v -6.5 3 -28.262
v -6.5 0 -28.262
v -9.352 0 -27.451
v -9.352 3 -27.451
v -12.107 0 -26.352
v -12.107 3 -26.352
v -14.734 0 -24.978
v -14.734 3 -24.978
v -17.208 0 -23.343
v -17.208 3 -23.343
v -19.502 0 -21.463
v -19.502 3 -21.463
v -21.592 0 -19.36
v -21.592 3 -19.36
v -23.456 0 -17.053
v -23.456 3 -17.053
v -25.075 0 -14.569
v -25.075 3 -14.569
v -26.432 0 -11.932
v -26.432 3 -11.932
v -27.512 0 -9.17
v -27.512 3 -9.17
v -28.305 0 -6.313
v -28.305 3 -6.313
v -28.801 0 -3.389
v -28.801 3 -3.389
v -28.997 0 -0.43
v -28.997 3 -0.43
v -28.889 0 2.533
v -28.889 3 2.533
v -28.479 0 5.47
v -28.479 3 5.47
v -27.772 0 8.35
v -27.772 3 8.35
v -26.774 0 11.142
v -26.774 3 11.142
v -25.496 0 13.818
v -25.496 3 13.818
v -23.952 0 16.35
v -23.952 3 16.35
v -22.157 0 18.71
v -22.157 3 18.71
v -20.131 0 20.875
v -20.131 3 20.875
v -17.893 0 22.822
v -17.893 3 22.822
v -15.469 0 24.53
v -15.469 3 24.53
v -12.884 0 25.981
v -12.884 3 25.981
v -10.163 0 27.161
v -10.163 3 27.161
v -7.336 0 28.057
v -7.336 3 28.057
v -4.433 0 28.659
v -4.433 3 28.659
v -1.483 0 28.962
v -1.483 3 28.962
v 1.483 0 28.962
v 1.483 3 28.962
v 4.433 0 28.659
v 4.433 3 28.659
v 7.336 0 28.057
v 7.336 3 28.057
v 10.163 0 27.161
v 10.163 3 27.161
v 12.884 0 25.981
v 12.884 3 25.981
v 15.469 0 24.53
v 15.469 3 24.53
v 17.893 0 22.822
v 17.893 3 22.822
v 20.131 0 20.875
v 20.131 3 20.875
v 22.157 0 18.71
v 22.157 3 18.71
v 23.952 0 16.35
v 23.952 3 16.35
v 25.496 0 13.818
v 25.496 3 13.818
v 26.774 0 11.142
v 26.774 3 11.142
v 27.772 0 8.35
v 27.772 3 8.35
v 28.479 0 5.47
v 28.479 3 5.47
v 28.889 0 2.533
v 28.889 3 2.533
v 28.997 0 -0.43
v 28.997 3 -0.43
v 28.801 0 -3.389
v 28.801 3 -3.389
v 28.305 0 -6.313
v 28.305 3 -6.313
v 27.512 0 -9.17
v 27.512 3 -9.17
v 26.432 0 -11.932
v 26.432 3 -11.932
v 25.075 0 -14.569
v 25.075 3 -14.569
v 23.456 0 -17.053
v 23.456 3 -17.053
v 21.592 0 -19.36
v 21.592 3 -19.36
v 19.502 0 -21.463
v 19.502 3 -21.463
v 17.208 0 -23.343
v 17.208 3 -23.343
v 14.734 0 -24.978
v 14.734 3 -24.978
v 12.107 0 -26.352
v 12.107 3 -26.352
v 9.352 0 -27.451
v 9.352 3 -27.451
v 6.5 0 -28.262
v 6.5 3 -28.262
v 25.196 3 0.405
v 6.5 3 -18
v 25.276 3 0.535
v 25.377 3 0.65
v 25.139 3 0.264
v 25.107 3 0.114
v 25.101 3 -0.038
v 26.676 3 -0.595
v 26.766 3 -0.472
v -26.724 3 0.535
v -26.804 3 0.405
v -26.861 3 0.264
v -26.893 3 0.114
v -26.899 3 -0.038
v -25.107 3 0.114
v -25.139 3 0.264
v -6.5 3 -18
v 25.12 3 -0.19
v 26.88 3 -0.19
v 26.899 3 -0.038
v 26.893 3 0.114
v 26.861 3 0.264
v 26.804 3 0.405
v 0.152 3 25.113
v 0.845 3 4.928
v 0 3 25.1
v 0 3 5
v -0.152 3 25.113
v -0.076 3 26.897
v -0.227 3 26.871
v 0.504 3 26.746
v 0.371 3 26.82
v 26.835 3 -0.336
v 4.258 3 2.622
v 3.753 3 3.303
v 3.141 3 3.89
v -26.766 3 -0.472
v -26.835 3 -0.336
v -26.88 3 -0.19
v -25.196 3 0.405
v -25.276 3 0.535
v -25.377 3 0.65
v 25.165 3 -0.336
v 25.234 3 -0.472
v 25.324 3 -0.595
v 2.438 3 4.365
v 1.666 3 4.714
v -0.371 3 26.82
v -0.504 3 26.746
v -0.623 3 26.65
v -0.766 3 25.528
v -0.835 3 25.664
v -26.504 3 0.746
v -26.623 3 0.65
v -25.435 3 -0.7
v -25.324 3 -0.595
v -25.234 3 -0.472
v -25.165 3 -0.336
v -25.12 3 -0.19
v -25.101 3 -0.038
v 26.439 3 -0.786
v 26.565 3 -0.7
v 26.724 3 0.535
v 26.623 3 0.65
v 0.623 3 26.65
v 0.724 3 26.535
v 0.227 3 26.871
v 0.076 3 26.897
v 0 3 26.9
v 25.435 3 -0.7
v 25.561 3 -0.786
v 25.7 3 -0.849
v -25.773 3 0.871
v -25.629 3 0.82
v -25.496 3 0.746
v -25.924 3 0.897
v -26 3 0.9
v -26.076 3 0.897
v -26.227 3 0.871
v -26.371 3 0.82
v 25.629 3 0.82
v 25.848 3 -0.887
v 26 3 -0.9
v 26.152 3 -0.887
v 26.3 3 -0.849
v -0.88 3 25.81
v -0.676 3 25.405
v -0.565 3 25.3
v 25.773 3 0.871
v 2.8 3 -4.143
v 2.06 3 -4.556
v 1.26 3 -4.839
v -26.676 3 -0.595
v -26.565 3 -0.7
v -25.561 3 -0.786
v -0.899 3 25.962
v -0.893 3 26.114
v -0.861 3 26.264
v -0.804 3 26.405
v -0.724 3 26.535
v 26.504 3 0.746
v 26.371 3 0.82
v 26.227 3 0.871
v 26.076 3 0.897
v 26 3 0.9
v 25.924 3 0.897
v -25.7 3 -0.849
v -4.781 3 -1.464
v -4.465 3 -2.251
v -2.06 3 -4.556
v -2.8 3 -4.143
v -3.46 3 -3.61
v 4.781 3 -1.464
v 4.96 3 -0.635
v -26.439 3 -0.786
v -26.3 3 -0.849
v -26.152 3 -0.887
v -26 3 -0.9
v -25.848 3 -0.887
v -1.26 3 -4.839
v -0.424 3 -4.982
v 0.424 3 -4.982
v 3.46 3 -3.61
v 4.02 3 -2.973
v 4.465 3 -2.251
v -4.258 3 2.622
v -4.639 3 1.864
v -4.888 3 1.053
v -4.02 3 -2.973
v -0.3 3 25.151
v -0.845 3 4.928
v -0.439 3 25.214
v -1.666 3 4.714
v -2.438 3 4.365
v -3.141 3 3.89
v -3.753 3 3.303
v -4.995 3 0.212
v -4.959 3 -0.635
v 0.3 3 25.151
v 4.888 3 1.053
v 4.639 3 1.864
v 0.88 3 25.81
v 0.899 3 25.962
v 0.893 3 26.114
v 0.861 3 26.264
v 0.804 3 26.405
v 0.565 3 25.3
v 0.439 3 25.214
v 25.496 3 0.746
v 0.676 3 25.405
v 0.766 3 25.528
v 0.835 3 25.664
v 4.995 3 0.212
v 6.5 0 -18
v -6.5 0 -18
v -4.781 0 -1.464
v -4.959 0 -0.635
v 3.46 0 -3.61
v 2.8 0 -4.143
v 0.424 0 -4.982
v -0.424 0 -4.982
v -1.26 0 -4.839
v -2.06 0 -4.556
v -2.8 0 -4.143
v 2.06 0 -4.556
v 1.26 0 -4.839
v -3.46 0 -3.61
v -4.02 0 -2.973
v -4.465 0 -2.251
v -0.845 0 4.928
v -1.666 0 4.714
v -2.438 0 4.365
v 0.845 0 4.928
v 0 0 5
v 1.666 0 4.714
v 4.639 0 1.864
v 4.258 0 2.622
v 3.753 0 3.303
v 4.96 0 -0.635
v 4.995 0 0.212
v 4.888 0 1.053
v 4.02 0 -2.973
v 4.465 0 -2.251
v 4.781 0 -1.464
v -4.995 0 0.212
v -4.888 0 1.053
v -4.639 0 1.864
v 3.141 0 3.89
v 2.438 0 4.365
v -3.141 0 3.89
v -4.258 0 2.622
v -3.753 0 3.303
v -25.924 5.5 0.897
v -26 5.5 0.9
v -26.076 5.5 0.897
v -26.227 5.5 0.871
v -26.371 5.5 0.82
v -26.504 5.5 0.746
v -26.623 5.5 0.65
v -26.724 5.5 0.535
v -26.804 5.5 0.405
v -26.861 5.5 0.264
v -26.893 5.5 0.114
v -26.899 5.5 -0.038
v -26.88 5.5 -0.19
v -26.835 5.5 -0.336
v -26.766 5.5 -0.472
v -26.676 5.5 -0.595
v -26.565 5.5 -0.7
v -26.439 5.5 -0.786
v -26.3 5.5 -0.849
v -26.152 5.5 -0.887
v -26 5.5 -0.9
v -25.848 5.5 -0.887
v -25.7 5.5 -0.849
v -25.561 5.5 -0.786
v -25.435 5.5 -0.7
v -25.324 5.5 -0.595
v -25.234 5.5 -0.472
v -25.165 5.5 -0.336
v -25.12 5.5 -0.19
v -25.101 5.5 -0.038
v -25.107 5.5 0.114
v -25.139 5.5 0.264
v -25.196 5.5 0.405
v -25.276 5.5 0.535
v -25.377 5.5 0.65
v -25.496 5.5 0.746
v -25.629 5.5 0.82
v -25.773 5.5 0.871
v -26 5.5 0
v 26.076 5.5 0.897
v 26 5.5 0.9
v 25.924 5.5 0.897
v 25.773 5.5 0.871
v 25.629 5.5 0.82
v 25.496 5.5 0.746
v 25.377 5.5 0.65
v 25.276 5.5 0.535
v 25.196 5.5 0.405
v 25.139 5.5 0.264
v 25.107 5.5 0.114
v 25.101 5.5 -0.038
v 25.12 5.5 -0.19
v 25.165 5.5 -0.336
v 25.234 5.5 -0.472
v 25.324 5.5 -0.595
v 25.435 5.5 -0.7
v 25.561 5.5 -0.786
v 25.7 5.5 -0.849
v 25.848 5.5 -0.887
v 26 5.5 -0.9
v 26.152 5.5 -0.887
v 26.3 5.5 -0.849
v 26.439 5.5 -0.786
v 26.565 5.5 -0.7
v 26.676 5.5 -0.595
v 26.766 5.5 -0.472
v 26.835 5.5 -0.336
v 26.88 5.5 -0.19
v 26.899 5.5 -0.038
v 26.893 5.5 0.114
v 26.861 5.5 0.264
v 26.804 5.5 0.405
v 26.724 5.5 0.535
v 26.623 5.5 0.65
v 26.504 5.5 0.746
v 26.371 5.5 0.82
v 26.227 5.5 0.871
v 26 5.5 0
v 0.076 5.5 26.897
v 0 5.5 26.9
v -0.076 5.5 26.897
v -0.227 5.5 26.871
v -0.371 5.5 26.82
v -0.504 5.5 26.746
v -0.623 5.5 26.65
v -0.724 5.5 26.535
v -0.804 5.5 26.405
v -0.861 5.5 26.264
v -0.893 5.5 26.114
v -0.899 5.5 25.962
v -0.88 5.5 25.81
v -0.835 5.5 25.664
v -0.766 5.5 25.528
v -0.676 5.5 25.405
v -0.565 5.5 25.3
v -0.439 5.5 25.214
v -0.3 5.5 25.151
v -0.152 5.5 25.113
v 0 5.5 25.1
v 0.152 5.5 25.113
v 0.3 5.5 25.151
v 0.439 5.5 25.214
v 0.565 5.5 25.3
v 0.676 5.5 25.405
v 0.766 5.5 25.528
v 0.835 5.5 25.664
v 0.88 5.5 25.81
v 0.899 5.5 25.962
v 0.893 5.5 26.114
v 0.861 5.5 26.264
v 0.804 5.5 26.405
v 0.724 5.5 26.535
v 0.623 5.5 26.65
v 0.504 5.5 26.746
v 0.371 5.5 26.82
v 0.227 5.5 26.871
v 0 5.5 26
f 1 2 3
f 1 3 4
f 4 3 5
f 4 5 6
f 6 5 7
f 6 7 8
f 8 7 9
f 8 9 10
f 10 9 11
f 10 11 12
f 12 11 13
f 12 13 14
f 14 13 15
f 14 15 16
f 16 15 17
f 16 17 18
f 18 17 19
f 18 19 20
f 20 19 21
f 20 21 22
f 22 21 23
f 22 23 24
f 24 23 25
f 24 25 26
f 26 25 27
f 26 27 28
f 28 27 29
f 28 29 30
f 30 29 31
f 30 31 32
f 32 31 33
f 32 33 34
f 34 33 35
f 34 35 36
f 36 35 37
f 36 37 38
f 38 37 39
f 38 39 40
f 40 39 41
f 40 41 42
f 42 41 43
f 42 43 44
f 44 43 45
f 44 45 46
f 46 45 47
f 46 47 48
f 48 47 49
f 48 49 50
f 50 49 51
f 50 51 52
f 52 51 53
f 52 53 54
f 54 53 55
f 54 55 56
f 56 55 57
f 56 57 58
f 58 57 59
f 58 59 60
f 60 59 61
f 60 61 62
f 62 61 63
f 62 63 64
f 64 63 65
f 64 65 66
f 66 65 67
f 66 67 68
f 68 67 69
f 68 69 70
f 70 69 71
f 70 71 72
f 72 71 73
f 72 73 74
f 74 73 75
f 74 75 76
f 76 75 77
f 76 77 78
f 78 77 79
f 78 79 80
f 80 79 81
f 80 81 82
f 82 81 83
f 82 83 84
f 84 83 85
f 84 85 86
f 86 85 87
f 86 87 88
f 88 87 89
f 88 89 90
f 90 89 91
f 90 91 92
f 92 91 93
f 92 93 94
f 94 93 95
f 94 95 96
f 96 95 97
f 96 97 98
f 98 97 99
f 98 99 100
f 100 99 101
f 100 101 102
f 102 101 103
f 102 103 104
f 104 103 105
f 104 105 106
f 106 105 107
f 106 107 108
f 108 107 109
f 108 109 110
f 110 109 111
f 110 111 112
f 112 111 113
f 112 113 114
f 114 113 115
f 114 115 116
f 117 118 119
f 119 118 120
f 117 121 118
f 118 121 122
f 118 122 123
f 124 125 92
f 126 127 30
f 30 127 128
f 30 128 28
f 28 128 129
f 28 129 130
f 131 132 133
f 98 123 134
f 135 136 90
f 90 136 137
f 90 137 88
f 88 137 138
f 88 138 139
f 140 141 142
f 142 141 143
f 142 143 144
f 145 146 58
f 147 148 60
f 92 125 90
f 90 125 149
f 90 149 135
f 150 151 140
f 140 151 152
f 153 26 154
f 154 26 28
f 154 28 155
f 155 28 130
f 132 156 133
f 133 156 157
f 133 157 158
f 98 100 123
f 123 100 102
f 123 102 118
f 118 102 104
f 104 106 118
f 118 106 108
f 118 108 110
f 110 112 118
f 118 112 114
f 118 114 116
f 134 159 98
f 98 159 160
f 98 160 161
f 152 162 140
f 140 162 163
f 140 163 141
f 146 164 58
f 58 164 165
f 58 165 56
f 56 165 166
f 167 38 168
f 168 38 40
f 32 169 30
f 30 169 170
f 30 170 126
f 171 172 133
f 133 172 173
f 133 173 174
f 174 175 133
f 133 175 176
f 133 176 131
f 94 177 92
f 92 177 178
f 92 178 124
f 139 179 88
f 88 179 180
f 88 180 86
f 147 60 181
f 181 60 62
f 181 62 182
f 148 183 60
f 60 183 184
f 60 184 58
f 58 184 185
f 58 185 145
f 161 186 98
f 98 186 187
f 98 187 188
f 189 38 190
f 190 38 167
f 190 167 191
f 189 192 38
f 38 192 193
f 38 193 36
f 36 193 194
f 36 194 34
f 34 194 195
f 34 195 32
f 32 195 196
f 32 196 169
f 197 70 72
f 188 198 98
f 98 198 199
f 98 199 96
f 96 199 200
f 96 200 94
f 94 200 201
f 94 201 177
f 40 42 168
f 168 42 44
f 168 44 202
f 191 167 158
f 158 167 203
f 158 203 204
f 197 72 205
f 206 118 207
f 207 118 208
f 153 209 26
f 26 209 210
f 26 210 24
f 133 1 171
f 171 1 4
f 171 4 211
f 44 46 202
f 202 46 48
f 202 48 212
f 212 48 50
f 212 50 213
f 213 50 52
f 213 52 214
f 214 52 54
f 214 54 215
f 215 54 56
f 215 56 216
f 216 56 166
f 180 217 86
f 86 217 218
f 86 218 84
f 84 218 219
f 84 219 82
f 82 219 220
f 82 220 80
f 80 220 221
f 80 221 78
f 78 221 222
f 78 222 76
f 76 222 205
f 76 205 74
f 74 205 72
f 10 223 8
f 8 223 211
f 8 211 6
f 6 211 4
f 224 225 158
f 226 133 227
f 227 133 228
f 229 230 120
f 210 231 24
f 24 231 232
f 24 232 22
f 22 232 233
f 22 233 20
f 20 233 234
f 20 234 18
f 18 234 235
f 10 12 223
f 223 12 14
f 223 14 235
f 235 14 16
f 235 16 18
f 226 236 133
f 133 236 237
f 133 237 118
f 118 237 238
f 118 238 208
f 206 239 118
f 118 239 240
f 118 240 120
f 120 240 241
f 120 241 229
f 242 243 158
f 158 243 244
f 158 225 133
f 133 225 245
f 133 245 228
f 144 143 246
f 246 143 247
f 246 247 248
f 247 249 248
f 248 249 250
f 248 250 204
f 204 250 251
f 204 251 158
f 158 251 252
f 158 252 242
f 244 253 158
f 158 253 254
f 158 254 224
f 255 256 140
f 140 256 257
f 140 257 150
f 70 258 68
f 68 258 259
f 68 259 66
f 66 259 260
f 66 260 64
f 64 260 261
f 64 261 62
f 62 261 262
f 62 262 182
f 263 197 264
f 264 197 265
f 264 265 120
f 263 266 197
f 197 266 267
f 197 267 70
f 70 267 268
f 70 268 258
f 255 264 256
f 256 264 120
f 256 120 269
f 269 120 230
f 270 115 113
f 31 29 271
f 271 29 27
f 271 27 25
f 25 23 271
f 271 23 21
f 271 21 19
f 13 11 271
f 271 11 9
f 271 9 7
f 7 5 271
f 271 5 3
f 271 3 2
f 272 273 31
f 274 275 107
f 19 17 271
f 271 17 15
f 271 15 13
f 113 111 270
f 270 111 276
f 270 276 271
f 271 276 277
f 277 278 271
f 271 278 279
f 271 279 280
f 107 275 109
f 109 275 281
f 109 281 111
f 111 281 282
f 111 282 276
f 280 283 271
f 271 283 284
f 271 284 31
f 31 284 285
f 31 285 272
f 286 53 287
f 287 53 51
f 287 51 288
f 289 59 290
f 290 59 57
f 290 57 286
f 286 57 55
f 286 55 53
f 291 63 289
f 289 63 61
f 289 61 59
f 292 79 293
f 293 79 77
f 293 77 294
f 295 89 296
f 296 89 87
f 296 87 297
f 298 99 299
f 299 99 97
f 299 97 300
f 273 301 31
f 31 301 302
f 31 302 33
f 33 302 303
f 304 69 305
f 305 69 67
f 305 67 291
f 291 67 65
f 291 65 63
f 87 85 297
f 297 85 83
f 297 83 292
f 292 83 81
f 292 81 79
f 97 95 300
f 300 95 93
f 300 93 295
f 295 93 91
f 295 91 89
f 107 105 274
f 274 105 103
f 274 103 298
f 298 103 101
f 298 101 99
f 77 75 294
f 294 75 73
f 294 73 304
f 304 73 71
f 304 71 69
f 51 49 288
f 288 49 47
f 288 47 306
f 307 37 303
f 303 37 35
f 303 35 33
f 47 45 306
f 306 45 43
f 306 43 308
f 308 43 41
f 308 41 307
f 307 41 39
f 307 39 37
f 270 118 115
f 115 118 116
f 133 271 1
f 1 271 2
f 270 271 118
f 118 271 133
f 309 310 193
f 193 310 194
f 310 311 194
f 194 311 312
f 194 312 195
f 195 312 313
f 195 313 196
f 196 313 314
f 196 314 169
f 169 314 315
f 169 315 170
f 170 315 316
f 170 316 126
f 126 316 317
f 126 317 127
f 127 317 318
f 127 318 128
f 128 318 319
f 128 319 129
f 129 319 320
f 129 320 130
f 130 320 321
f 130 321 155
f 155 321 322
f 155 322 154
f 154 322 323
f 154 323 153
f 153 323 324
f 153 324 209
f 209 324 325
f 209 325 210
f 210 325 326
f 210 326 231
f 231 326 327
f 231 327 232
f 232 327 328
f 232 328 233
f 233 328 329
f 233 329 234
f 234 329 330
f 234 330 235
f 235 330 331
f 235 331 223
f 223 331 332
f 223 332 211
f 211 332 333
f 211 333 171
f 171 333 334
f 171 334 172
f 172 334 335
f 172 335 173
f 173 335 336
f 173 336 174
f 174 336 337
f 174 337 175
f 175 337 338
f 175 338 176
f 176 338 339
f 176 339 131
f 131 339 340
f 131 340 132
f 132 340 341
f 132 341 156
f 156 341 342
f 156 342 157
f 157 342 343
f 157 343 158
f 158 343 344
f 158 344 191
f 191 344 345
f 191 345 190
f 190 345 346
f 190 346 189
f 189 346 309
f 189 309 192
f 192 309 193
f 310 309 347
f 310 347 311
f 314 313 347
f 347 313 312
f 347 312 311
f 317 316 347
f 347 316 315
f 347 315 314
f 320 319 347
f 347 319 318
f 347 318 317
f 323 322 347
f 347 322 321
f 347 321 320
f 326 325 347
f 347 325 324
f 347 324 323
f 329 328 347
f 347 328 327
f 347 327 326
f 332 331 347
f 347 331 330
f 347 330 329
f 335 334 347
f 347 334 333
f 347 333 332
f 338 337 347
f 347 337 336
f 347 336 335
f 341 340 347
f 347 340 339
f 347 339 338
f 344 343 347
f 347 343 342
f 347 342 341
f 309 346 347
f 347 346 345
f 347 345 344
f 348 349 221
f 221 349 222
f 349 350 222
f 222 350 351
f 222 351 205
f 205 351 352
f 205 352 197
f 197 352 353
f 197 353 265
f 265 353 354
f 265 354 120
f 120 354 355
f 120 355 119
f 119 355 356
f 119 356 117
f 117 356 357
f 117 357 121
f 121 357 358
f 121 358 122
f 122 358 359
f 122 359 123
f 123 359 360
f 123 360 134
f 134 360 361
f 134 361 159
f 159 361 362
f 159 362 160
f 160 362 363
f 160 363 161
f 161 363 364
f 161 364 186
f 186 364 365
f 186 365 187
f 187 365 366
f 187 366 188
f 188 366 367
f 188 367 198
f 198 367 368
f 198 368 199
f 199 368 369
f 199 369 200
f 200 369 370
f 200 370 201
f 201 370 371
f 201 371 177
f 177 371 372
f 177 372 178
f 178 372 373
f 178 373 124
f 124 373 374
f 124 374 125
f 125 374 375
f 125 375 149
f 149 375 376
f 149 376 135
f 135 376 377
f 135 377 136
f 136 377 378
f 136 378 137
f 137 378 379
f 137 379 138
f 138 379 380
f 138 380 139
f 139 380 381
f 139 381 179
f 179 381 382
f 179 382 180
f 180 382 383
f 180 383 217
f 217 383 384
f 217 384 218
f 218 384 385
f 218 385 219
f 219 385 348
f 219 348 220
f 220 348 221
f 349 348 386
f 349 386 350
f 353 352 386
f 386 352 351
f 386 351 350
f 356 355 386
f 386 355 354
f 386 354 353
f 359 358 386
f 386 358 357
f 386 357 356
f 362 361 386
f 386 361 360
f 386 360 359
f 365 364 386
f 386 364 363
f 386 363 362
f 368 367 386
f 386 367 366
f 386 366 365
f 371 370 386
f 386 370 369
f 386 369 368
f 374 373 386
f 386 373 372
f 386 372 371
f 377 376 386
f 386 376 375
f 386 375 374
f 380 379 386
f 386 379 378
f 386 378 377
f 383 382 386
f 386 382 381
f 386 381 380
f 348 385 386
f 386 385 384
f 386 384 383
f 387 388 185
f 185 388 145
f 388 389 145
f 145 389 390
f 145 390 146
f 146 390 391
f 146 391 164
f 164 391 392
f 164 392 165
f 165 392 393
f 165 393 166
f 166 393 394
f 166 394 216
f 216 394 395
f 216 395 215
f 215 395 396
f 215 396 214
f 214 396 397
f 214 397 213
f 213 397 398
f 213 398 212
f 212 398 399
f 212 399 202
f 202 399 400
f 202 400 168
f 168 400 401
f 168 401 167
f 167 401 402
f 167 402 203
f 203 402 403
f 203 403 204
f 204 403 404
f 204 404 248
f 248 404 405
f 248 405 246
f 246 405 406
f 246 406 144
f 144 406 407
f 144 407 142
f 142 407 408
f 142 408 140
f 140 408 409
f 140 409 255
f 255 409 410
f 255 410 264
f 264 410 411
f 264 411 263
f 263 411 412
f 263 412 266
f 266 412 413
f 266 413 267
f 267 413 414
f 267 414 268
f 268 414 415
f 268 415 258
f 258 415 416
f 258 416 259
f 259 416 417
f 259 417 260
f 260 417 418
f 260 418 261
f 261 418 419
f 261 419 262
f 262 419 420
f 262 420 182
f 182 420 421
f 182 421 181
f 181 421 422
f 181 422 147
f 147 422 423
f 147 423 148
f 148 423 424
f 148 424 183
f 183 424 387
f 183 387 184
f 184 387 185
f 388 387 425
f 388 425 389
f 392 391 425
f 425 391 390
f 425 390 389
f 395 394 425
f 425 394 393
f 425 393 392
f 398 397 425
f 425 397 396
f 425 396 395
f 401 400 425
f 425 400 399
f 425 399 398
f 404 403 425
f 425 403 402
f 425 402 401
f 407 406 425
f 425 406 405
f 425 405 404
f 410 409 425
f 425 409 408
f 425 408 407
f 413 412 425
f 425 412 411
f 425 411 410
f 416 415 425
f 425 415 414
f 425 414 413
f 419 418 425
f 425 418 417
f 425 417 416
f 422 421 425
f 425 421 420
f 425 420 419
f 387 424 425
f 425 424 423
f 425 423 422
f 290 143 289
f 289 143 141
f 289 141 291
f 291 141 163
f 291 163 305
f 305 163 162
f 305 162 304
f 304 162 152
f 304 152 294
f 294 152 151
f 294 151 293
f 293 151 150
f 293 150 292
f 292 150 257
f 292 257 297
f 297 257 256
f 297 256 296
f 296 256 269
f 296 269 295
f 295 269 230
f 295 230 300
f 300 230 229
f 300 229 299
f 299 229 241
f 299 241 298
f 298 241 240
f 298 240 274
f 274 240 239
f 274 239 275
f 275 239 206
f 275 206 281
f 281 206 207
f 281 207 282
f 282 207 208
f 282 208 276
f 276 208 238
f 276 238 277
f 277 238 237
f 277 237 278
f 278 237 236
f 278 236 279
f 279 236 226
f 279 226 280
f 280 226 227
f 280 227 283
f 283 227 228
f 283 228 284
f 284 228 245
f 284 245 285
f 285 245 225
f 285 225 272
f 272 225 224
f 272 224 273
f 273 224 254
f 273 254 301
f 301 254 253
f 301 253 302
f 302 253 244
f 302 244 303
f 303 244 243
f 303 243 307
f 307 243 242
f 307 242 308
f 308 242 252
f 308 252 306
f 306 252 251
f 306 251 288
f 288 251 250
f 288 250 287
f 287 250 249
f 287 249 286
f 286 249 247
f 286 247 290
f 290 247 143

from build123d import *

# Parameters (mm, degrees)
SKETCH1_R           = 29
BOSS_EXTRUDE1_DEPTH = 3
CUT_EXTRUDE1_DEPTH  = 3
SKETCH6_R           = 0.9
BOSS_EXTRUDE3_DEPTH = 2.5
SKETCH7_R           = 0.9
BOSS_EXTRUDE4_DEPTH = 2.5
SKETCH8_R           = 5
CUT_EXTRUDE2_DEPTH  = 3


with BuildPart() as part:
    # Sketch1 → Boss-Extrude1 (new body)
    with BuildSketch(Plane(origin=(0, 0, 0), x_dir=(1, 0, 0), z_dir=(0, 1, 0))):
        with Locations(Location((0, 0, 0), (0, 0, 270))):
            Circle(SKETCH1_R)
    extrude(amount=BOSS_EXTRUDE1_DEPTH)

    # Sketch2 → Cut-Extrude1 (cut)
    with BuildSketch(Plane(origin=(0, 3, 0), x_dir=(1, 0, 0), z_dir=(0, 1, 0))):
        Polygon((0, 29), (6.5, 29), (6.5, 18), (-6.5, 18), (-6.5, 29), align=None)
    extrude(amount=-CUT_EXTRUDE1_DEPTH, mode=Mode.SUBTRACT)

    # Sketch6 → Boss-Extrude3 (add)
    with BuildSketch(Plane(origin=(0, 3, 0), x_dir=(1, 0, 0), z_dir=(0, 1, 0))):
        with Locations(Location((-26, 0, 0), (0, 0, 270))):
            Circle(SKETCH6_R)
        with Locations(Location((26, 0, 0), (0, 0, 270))):
            Circle(SKETCH6_R)
    extrude(amount=BOSS_EXTRUDE3_DEPTH)

    # Sketch7 → Boss-Extrude4 (add)
    with BuildSketch(Plane(origin=(0, 3, 0), x_dir=(1, 0, 0), z_dir=(0, 1, 0))):
        with Locations(Location((0, -26, 0), (0, 0, 270))):
            Circle(SKETCH7_R)
    extrude(amount=BOSS_EXTRUDE4_DEPTH)

    # Sketch8 → Cut-Extrude2 (cut)
    with BuildSketch(Plane(origin=(0, 3, 0), x_dir=(1, 0, 0), z_dir=(0, 1, 0))):
        with Locations(Location((0, 0, 0), (0, 0, 270))):
            Circle(SKETCH8_R)
    extrude(amount=-CUT_EXTRUDE2_DEPTH, mode=Mode.SUBTRACT)


solid = part.part
